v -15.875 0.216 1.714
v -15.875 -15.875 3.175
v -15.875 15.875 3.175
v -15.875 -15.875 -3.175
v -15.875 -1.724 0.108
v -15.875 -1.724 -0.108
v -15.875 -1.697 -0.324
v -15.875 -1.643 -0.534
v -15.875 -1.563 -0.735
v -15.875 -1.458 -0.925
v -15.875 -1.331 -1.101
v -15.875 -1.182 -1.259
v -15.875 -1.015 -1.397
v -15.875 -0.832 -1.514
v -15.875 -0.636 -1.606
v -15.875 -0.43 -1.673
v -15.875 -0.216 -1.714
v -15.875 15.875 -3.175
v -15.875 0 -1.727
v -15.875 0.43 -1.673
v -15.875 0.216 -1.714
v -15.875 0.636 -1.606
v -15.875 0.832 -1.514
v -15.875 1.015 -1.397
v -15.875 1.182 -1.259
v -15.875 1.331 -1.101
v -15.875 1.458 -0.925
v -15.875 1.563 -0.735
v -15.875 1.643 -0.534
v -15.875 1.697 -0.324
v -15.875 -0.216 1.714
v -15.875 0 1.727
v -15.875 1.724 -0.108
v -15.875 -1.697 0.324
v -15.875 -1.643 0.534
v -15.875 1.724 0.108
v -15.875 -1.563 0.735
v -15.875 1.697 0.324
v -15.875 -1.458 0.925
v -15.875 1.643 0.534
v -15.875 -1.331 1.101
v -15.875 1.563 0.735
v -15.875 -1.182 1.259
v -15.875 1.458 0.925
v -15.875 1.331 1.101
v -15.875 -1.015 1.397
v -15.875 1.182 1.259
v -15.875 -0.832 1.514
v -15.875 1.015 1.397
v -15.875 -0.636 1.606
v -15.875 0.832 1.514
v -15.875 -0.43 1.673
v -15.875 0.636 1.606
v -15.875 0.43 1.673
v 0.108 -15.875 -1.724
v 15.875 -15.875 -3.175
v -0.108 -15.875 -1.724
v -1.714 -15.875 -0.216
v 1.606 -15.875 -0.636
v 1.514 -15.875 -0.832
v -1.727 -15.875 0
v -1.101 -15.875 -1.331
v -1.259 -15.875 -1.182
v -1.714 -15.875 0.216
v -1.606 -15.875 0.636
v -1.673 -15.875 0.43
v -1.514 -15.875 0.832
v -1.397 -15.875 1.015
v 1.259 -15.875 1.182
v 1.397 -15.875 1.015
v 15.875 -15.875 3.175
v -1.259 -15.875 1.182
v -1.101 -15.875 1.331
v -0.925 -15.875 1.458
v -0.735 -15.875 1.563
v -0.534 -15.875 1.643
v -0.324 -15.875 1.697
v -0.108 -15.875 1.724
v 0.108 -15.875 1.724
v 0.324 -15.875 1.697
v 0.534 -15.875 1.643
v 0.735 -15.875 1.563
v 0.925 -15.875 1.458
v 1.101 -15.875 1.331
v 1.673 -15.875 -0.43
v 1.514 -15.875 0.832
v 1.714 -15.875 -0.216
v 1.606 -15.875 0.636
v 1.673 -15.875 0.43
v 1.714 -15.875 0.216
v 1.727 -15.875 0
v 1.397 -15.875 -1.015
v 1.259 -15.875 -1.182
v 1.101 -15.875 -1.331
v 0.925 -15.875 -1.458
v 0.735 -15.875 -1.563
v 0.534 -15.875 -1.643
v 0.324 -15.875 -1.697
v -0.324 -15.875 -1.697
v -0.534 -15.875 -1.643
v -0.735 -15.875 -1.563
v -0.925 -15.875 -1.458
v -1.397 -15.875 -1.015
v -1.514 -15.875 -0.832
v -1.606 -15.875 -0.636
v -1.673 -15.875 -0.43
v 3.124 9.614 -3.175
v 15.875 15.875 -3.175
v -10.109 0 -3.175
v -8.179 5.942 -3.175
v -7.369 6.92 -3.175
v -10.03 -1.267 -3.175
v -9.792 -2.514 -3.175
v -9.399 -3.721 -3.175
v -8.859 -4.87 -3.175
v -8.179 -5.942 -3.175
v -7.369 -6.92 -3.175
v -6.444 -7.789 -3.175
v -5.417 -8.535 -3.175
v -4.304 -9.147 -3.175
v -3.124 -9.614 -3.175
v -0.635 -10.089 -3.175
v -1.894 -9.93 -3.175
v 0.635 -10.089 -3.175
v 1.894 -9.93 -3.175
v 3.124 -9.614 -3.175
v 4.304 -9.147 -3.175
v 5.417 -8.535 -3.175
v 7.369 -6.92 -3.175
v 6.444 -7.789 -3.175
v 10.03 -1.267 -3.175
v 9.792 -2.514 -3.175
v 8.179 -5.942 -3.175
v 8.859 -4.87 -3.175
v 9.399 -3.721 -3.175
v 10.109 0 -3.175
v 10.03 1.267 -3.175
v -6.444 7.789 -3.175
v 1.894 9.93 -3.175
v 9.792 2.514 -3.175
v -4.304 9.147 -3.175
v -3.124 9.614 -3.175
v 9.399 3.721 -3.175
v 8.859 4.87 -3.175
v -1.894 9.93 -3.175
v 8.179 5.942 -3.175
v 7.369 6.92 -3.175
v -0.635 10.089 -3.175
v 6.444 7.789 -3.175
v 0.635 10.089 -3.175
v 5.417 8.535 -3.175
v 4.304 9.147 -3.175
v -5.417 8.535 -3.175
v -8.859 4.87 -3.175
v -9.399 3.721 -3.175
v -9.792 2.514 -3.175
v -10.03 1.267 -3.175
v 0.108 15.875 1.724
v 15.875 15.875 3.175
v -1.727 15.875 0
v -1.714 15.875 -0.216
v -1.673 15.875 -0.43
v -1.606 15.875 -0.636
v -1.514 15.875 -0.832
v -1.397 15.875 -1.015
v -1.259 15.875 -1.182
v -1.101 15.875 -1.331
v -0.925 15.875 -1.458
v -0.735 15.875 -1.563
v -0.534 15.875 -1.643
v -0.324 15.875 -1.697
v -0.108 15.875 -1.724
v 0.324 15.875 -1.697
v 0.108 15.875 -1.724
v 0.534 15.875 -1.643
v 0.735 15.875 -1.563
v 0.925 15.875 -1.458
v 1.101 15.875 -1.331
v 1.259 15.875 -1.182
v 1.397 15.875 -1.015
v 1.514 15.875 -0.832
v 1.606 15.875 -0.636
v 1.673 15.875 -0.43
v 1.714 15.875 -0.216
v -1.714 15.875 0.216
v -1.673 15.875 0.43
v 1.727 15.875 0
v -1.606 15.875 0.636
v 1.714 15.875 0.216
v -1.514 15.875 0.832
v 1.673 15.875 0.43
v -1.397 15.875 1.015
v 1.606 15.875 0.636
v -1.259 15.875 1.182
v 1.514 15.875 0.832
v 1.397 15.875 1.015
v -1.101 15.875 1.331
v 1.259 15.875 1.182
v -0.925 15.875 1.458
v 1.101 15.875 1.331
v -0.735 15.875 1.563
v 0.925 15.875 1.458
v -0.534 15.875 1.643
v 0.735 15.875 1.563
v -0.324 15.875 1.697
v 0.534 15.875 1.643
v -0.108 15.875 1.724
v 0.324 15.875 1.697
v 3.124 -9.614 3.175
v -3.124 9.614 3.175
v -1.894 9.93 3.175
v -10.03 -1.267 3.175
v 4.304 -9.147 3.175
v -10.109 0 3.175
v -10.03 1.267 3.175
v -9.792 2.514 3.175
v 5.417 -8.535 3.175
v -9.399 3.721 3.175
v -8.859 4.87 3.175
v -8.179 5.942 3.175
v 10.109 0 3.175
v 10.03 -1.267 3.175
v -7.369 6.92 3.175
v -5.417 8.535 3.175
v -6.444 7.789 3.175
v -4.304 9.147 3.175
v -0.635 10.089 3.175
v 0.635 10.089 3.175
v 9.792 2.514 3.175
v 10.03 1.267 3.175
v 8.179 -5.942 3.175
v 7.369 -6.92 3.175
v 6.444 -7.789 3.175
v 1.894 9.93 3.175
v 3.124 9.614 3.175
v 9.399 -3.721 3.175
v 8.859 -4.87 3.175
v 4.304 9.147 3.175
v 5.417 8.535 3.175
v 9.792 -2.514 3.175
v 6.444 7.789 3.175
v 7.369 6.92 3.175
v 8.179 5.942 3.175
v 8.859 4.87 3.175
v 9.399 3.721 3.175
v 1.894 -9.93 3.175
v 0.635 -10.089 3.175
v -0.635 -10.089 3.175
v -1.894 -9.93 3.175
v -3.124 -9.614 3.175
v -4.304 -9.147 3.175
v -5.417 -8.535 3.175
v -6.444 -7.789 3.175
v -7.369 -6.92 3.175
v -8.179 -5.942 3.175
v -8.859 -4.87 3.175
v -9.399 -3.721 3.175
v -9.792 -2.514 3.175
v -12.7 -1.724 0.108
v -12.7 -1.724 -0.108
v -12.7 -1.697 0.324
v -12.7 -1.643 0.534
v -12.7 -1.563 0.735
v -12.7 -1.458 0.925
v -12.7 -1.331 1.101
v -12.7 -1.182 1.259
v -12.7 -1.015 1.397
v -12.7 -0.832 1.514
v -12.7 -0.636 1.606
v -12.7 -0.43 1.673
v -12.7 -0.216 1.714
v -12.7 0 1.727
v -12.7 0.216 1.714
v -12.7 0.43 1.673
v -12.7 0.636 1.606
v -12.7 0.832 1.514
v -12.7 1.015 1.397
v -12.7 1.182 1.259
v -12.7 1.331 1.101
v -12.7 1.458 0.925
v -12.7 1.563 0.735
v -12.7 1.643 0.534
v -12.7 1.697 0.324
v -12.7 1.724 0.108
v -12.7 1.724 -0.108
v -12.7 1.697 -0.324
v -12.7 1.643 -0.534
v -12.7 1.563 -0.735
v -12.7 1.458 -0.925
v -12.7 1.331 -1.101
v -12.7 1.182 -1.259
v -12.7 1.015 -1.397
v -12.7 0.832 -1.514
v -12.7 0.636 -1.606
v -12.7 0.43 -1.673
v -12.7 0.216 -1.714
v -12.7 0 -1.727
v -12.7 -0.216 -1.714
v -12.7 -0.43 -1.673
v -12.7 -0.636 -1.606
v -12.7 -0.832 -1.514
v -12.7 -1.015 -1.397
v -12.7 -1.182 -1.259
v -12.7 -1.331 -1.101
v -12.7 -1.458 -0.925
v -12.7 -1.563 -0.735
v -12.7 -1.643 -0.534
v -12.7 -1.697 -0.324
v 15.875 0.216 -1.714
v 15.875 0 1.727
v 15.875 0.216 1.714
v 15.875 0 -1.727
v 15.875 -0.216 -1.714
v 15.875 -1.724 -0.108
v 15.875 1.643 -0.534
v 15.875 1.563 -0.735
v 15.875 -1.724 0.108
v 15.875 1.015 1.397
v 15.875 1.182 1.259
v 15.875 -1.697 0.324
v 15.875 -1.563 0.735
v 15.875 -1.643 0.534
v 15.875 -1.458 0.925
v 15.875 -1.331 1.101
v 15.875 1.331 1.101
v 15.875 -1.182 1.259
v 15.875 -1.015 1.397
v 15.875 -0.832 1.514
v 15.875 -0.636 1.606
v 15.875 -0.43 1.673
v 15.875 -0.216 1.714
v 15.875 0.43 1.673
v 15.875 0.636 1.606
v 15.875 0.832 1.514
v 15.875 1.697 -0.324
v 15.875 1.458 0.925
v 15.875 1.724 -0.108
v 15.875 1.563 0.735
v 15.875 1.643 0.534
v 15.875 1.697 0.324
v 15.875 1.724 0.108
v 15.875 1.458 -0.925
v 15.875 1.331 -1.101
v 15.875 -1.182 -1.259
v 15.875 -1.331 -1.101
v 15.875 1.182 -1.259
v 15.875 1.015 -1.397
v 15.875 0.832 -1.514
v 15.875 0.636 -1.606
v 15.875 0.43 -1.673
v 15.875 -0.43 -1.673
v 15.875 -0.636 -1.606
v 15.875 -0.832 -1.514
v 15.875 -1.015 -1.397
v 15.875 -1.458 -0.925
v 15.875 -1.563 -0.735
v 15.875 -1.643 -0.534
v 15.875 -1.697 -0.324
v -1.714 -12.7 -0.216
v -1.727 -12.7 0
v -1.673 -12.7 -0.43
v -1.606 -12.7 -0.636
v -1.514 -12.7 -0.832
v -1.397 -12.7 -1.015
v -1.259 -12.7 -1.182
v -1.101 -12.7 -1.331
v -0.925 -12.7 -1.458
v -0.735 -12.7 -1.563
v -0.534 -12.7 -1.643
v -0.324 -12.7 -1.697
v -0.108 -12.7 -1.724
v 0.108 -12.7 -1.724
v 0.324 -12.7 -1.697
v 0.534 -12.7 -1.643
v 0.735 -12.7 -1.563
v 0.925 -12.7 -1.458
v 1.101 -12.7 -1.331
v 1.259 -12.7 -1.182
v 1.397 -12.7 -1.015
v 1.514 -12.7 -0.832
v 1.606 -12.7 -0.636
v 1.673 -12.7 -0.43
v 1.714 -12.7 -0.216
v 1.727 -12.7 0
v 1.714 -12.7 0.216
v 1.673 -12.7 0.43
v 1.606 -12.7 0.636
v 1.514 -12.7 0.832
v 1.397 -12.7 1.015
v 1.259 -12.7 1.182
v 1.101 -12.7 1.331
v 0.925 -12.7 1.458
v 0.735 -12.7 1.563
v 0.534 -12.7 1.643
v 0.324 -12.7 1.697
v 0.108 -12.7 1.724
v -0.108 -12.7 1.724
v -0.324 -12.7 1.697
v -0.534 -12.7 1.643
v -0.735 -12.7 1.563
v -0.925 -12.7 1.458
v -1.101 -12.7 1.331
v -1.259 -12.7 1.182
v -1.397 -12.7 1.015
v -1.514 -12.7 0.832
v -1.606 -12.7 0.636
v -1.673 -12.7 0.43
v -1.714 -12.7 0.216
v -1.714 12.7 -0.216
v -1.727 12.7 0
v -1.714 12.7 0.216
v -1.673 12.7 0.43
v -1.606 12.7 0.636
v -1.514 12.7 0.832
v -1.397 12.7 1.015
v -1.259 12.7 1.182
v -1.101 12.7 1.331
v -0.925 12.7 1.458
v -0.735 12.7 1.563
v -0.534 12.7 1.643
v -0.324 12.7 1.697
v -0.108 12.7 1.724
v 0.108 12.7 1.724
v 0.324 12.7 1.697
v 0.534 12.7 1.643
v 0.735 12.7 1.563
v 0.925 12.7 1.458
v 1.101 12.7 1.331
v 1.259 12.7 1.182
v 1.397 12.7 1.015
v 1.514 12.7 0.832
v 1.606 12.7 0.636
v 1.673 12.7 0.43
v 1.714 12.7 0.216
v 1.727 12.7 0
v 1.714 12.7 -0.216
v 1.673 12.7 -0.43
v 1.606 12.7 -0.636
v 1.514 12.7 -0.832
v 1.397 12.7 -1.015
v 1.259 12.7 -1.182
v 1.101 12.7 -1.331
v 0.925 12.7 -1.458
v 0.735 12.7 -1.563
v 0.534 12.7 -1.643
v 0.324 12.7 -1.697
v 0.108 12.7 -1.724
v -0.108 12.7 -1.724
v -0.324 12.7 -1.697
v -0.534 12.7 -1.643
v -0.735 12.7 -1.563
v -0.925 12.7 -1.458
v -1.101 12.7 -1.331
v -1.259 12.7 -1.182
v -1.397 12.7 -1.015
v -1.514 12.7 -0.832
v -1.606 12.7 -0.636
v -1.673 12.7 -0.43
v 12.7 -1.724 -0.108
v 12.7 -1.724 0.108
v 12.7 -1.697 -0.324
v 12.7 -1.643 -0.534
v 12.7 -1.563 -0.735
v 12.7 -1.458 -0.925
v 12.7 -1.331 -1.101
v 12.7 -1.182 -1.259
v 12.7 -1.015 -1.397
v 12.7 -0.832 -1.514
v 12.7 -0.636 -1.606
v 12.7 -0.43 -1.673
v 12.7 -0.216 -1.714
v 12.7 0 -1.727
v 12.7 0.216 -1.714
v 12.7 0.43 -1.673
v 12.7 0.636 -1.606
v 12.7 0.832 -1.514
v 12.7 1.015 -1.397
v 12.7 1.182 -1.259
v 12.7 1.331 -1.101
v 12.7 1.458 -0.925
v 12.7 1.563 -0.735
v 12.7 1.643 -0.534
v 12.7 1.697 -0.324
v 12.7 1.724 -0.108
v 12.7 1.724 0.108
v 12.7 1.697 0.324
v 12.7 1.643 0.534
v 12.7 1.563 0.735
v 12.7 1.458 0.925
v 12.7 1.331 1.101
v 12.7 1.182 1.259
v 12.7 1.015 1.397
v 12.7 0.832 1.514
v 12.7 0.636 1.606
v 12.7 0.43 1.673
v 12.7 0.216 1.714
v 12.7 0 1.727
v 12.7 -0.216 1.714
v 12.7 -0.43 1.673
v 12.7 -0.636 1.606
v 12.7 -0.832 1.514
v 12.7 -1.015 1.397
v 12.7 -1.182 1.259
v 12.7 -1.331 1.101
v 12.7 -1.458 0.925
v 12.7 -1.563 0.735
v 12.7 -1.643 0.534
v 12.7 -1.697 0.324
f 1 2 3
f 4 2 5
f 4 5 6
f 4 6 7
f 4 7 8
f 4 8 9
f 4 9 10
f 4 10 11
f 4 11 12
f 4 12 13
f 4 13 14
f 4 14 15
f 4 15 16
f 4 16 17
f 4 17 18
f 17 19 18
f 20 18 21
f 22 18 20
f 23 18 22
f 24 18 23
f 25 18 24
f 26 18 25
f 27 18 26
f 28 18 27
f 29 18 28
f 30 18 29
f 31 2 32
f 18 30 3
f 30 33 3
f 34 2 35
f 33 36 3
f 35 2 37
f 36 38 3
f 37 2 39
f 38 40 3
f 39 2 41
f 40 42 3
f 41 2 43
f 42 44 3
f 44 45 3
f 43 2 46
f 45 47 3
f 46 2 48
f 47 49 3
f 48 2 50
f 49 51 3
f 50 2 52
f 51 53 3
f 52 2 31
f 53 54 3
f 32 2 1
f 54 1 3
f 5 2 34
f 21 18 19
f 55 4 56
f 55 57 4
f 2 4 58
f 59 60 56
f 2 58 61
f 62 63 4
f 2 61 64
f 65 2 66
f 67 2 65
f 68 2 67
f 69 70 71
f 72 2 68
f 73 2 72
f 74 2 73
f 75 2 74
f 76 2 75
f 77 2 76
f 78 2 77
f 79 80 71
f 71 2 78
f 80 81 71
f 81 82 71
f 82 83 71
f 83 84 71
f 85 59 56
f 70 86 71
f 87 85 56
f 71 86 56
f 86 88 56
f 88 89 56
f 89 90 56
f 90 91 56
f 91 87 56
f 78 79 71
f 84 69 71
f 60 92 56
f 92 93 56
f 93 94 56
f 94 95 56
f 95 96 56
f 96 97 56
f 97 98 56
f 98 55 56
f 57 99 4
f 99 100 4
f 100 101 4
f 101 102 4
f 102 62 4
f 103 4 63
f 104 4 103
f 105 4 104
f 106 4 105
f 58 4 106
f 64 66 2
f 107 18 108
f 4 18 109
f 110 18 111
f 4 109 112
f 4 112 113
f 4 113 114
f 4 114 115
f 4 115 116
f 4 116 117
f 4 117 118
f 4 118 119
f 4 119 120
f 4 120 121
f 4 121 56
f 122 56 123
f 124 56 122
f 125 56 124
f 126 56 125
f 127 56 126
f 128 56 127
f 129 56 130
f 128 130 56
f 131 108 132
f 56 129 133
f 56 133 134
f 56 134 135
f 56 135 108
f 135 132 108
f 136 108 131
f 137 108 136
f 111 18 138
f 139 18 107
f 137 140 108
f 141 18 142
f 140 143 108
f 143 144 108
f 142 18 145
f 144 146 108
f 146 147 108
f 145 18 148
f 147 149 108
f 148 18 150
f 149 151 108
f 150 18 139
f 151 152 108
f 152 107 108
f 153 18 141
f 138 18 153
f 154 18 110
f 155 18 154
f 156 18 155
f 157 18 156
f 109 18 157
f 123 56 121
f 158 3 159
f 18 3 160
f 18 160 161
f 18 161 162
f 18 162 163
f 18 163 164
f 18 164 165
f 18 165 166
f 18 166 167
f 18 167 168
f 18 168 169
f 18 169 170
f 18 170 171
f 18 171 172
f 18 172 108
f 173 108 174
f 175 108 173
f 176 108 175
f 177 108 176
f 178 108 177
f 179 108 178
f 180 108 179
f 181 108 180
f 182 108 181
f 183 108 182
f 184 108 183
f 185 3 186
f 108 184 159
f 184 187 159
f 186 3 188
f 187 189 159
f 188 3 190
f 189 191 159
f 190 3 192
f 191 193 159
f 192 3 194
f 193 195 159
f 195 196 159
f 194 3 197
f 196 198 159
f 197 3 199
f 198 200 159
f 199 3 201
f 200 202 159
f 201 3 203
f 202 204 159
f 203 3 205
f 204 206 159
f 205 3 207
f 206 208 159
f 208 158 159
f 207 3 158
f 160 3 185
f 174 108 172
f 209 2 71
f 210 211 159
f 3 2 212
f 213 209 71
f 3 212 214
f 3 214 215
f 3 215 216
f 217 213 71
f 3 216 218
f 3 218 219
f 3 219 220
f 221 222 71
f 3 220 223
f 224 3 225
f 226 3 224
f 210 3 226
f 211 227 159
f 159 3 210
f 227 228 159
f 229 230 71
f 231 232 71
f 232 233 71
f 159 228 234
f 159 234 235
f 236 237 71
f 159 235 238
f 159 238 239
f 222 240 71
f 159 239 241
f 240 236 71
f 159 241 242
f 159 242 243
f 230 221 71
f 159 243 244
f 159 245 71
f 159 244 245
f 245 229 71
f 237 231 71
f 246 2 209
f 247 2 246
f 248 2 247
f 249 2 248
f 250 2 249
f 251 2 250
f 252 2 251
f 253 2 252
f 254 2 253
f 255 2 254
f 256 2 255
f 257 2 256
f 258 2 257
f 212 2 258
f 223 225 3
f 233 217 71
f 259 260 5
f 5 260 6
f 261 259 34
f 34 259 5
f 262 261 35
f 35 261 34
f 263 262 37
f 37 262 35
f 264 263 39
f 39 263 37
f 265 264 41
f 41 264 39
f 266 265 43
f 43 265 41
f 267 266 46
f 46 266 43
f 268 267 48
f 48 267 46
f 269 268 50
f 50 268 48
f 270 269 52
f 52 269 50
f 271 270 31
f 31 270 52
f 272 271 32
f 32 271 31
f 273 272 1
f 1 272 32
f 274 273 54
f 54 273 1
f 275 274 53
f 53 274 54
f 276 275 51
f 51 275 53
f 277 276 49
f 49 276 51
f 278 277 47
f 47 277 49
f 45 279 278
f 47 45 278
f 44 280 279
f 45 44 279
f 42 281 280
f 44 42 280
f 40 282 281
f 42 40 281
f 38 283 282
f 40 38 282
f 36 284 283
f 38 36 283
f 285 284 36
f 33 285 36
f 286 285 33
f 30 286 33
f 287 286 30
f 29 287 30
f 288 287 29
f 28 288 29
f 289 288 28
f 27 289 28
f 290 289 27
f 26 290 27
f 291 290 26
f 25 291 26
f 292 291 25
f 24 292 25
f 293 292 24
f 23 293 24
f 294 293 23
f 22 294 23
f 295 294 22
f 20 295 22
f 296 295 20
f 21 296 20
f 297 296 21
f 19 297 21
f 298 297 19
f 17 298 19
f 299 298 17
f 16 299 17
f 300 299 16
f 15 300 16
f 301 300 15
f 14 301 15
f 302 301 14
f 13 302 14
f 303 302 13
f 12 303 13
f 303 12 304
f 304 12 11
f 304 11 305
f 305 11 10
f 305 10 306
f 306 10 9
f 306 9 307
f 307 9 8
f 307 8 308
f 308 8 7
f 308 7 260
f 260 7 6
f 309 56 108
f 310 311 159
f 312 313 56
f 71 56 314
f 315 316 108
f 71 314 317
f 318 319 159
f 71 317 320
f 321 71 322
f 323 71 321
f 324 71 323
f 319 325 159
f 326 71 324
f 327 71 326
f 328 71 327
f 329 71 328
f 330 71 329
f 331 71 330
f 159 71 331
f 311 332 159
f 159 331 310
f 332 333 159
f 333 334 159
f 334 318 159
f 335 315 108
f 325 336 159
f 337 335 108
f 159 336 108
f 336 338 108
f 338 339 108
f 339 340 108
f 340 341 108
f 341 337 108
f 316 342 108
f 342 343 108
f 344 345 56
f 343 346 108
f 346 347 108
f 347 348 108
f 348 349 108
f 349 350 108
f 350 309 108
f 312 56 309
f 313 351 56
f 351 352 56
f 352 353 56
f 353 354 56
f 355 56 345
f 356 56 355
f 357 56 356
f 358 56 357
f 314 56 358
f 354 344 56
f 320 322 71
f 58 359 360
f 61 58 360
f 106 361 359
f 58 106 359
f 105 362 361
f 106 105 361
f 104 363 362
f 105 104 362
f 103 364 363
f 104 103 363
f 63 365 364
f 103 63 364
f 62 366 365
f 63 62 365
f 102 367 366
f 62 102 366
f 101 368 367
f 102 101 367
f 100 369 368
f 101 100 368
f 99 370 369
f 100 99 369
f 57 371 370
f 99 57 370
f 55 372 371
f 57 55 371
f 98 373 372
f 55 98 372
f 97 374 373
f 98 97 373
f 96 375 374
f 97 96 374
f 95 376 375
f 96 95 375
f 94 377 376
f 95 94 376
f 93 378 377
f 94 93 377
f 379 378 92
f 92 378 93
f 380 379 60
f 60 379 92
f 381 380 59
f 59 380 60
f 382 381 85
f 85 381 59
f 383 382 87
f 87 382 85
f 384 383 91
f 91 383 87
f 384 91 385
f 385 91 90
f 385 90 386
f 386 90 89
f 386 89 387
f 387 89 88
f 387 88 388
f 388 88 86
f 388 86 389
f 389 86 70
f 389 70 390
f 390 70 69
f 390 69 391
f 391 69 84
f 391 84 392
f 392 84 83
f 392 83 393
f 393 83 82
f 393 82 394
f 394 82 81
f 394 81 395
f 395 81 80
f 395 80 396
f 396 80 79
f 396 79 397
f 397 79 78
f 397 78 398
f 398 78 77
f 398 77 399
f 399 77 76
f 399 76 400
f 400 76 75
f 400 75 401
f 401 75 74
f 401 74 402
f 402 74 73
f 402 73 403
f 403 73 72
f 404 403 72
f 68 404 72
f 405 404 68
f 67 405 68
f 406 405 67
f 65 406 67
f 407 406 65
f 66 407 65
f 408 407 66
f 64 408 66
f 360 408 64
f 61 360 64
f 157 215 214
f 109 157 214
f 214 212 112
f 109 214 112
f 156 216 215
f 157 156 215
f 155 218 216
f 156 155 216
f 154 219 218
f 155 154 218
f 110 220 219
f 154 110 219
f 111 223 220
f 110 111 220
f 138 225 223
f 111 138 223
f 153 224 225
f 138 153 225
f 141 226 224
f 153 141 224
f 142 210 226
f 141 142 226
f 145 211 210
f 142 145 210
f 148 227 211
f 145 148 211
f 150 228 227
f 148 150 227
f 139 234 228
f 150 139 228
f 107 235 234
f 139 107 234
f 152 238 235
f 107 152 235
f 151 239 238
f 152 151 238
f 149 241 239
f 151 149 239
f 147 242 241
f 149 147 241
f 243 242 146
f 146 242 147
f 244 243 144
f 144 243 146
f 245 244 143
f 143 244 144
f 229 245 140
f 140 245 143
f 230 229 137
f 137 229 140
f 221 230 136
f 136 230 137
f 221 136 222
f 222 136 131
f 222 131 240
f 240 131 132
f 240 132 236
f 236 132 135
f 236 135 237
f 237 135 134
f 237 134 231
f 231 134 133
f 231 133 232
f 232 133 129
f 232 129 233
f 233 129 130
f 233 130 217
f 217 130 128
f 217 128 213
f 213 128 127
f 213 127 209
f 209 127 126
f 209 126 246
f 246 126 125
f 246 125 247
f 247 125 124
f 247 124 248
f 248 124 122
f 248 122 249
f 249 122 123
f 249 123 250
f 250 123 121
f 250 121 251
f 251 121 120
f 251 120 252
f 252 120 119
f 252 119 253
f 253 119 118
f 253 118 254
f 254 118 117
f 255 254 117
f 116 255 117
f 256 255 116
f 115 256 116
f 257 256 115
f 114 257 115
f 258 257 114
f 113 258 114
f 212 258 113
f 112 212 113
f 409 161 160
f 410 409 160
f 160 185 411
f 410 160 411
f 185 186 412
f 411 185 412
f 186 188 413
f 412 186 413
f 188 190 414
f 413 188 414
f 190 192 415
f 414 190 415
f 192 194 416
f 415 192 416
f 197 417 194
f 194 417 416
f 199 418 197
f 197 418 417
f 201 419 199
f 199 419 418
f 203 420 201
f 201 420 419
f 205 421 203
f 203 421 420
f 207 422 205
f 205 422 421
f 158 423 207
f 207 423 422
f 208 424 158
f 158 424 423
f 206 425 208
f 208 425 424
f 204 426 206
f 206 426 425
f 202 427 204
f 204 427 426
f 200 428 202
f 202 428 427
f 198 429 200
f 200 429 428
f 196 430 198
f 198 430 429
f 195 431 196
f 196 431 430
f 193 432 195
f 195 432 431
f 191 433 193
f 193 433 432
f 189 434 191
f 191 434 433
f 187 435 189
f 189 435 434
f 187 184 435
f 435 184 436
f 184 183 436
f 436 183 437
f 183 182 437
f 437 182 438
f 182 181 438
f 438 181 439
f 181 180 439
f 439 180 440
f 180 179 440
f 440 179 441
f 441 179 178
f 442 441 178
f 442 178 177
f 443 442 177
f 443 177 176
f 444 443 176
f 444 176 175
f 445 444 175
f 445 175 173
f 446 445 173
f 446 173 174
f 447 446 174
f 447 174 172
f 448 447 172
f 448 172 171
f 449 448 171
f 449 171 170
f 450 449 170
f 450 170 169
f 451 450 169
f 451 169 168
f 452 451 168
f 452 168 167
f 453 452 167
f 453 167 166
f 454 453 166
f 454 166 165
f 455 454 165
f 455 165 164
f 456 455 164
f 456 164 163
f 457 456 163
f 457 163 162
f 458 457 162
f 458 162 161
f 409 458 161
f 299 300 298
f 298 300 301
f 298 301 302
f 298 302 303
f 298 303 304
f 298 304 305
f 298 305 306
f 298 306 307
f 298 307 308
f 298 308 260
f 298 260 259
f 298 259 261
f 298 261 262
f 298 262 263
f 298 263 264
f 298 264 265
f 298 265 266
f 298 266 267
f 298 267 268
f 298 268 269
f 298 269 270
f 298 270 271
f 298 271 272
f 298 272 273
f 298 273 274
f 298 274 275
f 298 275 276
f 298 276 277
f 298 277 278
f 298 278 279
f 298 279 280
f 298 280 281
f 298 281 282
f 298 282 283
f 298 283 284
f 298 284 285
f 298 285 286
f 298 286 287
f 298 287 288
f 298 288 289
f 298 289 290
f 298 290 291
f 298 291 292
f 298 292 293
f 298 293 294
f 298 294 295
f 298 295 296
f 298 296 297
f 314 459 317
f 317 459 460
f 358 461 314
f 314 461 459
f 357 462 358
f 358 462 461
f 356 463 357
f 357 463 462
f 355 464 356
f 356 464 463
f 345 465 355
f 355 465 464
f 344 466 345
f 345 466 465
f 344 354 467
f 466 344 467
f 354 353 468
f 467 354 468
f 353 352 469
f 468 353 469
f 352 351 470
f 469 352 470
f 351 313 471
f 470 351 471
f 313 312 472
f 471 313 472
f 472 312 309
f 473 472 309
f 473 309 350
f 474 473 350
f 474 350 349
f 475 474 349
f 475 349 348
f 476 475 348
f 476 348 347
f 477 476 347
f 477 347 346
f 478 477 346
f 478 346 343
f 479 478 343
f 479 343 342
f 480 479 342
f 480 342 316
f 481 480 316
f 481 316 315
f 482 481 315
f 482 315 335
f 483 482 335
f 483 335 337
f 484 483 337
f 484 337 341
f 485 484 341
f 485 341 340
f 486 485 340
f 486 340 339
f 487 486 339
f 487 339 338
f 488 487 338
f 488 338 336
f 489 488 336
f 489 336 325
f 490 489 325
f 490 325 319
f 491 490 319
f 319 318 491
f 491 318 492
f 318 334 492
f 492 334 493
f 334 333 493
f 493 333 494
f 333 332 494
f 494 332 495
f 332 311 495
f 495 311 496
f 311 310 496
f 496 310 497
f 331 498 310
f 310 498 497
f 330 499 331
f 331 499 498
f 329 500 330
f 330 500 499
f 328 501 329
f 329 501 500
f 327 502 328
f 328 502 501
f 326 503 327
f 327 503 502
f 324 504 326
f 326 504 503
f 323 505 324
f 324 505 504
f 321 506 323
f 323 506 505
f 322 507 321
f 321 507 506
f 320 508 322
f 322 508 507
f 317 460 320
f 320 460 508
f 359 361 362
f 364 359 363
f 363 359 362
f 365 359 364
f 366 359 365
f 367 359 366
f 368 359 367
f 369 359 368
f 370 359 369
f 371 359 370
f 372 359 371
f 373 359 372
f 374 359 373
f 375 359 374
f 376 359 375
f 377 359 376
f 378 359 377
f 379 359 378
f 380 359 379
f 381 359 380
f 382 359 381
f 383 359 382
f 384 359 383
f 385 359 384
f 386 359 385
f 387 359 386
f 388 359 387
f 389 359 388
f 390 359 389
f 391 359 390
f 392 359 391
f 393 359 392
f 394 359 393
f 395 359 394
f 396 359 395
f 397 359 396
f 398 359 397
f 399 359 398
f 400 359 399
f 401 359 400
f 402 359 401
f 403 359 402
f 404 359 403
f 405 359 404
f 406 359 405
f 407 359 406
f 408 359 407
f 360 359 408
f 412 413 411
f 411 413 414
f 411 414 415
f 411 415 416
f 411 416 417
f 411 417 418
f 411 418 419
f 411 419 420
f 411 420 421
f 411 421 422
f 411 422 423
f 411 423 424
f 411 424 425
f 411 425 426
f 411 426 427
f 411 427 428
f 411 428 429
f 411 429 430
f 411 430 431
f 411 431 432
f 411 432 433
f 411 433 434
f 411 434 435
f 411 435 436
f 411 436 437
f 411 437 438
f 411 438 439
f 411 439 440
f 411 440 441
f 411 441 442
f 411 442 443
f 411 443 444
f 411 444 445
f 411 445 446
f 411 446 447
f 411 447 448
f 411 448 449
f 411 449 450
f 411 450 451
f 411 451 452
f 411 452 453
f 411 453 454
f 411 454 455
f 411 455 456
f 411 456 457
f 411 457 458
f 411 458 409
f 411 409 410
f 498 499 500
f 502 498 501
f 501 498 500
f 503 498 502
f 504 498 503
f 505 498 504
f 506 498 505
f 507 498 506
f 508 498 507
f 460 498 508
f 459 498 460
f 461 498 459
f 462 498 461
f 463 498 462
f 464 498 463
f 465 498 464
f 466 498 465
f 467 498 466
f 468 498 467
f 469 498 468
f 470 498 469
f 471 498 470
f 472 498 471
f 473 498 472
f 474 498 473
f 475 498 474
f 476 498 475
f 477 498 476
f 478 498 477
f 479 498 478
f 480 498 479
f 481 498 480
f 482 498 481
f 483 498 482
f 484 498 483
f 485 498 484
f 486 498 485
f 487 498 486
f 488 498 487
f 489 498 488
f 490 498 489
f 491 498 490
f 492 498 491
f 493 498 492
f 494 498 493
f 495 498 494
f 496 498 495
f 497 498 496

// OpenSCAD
$fn = 50;
//$fa = 0.01;
//$fs = 0.5;


in=25.4;
l=1.5*in;
lSide=1.25*in;
w=l;
h=0.25*in;
d=1*in;

dHole=0.796*in;
//dLip=0.935*in;

d8=0.136*in;
//p=0.125*in;

render(convexity=3)
{

	union()
	{
		difference()
		{
		cube([lSide,lSide,h], center=true); //Body 
		translate([0,0,-h*0.5]) cylinder(h=400, r=dHole/2); //Hole
		//translate([0,0,-10]) cylinder(h=100, r=dLip/2); //Lip diameter

		rotate([0,90,0]) translate([0,0,1.0*d/2]) cylinder(h=1*d, r=d8/2, center=false); //Edge screw hole
		rotate([0,-90,0]) translate([0,0,1.0*d/2]) cylinder(h=1*d, r=d8/2, center=false); //Edge screw hole
		rotate([90,0,0]) translate([0,0,1.0*d/2]) cylinder(h=d, r=d8/2, center=false); //Edge screw hole
		rotate([-90,0,0]) translate([0,0,1.0*d/2]) cylinder(h=d, r=d8/2, center=false); //Edge screw hole


		//rotate([90,0,0]) cylinder(h=2*d, r=d8/2, center=true);
		
		//translate([15,15,0]) cylinder(h=100, r=3, center=true);
		//translate([15,-15,0]) cylinder(h=100, r=3, center=true);
		//translate([-15,15,0]) cylinder(h=100, r=3, center=true);
		//translate([-15,-15,0]) cylinder(h=100, r=3, center=true);


		}
	//rotate([0,0,30])translate([dHole/2+p/4, 0, 0]) cylinder(h=h, r=p/2, center=true);
	//rotate([0,0,-30])translate([dHole/2+p/4, 0, 0]) cylinder(h=h, r=p/2, center=true);

	}

}
